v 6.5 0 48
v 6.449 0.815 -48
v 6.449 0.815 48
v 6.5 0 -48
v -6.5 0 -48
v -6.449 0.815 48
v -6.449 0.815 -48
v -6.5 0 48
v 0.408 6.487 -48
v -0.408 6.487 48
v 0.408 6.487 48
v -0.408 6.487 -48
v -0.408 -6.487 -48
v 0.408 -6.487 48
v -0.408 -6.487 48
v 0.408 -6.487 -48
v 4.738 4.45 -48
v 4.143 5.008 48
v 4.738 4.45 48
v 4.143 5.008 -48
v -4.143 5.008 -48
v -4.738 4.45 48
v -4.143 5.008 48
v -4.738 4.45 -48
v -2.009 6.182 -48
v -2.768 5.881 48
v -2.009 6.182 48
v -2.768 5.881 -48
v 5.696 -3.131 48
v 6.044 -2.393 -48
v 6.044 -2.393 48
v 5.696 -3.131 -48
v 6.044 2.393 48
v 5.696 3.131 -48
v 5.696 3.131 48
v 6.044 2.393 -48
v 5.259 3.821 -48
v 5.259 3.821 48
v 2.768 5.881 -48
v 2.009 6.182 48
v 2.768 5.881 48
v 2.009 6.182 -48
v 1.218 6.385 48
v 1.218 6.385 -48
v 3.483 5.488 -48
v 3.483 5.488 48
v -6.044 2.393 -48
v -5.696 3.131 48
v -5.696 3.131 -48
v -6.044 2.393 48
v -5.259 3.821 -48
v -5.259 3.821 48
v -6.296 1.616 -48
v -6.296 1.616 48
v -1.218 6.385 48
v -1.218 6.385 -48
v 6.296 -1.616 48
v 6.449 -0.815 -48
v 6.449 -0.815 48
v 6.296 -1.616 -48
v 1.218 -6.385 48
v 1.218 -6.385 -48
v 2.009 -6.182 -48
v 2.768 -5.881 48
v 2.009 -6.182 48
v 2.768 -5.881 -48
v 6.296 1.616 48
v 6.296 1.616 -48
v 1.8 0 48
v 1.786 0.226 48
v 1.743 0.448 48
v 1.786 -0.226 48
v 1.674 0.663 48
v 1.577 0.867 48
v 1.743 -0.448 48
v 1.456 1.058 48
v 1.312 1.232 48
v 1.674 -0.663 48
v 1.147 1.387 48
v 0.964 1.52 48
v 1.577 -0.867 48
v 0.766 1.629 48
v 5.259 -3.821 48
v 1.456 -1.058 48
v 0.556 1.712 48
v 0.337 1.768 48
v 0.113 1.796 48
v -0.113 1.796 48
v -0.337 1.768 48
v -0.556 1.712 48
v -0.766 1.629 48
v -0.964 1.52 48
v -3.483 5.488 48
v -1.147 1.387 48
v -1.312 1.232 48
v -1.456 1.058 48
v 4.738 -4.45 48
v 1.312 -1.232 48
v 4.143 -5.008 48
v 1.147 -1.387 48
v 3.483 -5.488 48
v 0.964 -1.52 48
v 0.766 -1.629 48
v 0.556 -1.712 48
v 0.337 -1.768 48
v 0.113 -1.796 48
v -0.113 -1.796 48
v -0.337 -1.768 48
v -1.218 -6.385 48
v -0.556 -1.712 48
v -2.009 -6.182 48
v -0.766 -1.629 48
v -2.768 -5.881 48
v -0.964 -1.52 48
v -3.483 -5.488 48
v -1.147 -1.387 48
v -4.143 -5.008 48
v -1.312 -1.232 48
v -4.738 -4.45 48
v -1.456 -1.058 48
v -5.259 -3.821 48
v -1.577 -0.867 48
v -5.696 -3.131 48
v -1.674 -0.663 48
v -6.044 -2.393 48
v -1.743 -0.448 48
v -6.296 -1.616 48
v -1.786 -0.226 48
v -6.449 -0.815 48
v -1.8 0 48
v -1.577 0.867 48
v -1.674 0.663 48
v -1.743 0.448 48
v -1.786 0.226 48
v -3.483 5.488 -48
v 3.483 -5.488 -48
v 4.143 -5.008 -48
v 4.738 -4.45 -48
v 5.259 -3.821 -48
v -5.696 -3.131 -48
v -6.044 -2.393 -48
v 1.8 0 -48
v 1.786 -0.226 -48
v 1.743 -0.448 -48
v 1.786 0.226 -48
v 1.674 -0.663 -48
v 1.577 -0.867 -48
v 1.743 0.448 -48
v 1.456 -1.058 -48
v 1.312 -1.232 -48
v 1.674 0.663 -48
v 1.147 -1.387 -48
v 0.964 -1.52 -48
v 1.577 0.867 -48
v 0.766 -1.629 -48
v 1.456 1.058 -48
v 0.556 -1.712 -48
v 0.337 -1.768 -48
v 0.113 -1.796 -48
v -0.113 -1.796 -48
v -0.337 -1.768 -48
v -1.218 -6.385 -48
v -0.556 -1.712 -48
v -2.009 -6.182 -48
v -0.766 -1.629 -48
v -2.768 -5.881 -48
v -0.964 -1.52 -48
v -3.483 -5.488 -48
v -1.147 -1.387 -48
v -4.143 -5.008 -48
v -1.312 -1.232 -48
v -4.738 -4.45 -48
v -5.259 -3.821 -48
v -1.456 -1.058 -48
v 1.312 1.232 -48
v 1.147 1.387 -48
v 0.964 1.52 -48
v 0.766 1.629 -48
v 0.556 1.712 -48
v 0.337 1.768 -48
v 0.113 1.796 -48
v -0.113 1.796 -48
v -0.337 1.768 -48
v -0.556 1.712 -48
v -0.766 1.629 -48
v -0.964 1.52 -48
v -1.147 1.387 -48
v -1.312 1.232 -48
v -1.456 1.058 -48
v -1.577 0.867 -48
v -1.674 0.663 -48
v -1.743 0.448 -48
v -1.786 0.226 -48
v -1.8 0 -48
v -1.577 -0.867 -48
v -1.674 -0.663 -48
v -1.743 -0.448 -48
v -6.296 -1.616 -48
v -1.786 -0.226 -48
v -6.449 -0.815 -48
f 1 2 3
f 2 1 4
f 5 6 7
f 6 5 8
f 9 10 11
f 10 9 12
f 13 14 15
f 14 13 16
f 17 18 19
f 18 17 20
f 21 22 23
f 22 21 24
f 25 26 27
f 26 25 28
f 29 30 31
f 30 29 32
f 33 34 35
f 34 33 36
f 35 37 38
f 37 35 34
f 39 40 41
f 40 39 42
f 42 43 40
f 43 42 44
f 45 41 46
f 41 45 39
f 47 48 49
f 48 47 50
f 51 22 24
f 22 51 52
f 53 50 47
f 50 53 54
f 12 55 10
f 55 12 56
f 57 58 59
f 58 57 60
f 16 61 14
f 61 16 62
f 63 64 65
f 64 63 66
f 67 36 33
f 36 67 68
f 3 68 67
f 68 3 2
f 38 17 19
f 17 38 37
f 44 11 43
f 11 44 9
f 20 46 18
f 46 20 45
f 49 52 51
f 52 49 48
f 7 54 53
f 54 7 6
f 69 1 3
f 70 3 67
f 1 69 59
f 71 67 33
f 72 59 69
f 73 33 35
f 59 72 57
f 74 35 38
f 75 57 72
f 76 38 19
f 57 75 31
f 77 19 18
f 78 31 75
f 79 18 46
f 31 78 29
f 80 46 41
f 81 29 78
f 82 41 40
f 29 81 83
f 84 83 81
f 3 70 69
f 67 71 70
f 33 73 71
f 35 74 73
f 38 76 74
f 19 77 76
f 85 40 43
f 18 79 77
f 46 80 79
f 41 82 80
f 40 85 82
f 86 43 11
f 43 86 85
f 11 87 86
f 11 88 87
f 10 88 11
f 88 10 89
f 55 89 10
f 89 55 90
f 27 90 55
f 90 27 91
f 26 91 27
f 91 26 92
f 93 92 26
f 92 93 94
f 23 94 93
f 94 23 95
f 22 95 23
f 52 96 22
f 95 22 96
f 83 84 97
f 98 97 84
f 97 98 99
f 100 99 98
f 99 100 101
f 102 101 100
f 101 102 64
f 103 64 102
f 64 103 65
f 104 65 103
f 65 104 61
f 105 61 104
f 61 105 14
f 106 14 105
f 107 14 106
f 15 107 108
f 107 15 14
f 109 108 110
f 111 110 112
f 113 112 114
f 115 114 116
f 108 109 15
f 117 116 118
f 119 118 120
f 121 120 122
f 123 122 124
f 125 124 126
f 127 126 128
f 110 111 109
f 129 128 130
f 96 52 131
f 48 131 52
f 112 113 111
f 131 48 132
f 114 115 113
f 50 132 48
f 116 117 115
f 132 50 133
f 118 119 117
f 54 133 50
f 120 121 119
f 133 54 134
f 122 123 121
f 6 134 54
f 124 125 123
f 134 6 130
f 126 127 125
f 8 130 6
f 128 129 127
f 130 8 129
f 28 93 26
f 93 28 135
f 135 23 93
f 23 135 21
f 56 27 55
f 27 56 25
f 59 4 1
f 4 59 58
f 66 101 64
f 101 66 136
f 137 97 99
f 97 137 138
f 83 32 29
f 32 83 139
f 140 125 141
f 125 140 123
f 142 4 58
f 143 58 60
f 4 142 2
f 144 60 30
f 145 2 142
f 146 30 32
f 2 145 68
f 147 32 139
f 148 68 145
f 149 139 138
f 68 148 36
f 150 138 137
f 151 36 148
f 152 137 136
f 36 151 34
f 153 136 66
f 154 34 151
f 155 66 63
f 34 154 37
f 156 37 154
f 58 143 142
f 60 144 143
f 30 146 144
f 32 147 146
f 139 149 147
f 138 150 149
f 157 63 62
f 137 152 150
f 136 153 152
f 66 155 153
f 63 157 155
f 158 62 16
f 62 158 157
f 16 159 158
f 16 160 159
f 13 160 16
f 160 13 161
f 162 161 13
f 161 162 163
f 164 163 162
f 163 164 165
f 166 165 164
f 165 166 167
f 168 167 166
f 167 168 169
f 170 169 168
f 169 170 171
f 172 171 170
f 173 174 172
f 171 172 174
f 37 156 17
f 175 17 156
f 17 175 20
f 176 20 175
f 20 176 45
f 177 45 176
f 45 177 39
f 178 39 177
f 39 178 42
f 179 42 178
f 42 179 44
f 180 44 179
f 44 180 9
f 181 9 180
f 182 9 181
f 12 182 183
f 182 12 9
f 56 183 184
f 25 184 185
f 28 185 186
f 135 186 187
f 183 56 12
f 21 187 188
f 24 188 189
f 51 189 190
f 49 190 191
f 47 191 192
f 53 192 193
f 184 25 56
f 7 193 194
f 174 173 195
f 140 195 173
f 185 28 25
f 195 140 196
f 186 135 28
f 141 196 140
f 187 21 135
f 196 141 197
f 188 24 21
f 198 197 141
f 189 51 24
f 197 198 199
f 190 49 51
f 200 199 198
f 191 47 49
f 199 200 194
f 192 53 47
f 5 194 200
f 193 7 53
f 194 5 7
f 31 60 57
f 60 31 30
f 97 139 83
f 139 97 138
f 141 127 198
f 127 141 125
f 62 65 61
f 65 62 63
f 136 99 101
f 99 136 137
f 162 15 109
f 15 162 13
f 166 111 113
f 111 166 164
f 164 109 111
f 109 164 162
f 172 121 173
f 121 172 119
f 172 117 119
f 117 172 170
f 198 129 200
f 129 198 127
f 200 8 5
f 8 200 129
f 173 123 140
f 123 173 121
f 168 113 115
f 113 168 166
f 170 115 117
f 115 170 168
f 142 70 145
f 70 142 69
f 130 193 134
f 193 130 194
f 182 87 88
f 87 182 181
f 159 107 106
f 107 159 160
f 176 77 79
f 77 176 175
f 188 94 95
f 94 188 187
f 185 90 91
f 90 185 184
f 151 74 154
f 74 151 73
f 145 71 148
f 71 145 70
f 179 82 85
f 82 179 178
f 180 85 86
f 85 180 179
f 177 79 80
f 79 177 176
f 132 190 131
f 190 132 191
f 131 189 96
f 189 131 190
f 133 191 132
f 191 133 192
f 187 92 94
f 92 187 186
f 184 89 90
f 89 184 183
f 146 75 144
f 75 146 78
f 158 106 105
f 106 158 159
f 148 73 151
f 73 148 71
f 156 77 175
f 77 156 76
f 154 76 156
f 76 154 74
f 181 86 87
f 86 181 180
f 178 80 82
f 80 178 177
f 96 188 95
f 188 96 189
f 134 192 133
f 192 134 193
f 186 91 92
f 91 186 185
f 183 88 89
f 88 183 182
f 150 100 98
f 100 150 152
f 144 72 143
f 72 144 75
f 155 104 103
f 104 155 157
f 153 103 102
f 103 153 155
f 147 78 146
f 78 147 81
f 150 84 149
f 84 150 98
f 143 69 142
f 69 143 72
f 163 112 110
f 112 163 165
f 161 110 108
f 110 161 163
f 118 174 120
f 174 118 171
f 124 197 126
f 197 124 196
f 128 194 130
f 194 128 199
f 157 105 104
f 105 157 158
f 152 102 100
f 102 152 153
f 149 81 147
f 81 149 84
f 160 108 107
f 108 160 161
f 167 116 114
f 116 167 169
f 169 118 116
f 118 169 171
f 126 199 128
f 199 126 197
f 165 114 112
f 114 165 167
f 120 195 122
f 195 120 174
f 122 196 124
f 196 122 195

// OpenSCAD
$fn = 50;


difference() {
	union() {
		translate(v = [0, 0, -48.0000000000]) {
			cylinder(h = 96, r = 6.5000000000);
		}
	}
	union() {
		translate(v = [0, 0, -100.0000000000]) {
			cylinder(h = 200, r = 1.8000000000);
		}
	}
}
